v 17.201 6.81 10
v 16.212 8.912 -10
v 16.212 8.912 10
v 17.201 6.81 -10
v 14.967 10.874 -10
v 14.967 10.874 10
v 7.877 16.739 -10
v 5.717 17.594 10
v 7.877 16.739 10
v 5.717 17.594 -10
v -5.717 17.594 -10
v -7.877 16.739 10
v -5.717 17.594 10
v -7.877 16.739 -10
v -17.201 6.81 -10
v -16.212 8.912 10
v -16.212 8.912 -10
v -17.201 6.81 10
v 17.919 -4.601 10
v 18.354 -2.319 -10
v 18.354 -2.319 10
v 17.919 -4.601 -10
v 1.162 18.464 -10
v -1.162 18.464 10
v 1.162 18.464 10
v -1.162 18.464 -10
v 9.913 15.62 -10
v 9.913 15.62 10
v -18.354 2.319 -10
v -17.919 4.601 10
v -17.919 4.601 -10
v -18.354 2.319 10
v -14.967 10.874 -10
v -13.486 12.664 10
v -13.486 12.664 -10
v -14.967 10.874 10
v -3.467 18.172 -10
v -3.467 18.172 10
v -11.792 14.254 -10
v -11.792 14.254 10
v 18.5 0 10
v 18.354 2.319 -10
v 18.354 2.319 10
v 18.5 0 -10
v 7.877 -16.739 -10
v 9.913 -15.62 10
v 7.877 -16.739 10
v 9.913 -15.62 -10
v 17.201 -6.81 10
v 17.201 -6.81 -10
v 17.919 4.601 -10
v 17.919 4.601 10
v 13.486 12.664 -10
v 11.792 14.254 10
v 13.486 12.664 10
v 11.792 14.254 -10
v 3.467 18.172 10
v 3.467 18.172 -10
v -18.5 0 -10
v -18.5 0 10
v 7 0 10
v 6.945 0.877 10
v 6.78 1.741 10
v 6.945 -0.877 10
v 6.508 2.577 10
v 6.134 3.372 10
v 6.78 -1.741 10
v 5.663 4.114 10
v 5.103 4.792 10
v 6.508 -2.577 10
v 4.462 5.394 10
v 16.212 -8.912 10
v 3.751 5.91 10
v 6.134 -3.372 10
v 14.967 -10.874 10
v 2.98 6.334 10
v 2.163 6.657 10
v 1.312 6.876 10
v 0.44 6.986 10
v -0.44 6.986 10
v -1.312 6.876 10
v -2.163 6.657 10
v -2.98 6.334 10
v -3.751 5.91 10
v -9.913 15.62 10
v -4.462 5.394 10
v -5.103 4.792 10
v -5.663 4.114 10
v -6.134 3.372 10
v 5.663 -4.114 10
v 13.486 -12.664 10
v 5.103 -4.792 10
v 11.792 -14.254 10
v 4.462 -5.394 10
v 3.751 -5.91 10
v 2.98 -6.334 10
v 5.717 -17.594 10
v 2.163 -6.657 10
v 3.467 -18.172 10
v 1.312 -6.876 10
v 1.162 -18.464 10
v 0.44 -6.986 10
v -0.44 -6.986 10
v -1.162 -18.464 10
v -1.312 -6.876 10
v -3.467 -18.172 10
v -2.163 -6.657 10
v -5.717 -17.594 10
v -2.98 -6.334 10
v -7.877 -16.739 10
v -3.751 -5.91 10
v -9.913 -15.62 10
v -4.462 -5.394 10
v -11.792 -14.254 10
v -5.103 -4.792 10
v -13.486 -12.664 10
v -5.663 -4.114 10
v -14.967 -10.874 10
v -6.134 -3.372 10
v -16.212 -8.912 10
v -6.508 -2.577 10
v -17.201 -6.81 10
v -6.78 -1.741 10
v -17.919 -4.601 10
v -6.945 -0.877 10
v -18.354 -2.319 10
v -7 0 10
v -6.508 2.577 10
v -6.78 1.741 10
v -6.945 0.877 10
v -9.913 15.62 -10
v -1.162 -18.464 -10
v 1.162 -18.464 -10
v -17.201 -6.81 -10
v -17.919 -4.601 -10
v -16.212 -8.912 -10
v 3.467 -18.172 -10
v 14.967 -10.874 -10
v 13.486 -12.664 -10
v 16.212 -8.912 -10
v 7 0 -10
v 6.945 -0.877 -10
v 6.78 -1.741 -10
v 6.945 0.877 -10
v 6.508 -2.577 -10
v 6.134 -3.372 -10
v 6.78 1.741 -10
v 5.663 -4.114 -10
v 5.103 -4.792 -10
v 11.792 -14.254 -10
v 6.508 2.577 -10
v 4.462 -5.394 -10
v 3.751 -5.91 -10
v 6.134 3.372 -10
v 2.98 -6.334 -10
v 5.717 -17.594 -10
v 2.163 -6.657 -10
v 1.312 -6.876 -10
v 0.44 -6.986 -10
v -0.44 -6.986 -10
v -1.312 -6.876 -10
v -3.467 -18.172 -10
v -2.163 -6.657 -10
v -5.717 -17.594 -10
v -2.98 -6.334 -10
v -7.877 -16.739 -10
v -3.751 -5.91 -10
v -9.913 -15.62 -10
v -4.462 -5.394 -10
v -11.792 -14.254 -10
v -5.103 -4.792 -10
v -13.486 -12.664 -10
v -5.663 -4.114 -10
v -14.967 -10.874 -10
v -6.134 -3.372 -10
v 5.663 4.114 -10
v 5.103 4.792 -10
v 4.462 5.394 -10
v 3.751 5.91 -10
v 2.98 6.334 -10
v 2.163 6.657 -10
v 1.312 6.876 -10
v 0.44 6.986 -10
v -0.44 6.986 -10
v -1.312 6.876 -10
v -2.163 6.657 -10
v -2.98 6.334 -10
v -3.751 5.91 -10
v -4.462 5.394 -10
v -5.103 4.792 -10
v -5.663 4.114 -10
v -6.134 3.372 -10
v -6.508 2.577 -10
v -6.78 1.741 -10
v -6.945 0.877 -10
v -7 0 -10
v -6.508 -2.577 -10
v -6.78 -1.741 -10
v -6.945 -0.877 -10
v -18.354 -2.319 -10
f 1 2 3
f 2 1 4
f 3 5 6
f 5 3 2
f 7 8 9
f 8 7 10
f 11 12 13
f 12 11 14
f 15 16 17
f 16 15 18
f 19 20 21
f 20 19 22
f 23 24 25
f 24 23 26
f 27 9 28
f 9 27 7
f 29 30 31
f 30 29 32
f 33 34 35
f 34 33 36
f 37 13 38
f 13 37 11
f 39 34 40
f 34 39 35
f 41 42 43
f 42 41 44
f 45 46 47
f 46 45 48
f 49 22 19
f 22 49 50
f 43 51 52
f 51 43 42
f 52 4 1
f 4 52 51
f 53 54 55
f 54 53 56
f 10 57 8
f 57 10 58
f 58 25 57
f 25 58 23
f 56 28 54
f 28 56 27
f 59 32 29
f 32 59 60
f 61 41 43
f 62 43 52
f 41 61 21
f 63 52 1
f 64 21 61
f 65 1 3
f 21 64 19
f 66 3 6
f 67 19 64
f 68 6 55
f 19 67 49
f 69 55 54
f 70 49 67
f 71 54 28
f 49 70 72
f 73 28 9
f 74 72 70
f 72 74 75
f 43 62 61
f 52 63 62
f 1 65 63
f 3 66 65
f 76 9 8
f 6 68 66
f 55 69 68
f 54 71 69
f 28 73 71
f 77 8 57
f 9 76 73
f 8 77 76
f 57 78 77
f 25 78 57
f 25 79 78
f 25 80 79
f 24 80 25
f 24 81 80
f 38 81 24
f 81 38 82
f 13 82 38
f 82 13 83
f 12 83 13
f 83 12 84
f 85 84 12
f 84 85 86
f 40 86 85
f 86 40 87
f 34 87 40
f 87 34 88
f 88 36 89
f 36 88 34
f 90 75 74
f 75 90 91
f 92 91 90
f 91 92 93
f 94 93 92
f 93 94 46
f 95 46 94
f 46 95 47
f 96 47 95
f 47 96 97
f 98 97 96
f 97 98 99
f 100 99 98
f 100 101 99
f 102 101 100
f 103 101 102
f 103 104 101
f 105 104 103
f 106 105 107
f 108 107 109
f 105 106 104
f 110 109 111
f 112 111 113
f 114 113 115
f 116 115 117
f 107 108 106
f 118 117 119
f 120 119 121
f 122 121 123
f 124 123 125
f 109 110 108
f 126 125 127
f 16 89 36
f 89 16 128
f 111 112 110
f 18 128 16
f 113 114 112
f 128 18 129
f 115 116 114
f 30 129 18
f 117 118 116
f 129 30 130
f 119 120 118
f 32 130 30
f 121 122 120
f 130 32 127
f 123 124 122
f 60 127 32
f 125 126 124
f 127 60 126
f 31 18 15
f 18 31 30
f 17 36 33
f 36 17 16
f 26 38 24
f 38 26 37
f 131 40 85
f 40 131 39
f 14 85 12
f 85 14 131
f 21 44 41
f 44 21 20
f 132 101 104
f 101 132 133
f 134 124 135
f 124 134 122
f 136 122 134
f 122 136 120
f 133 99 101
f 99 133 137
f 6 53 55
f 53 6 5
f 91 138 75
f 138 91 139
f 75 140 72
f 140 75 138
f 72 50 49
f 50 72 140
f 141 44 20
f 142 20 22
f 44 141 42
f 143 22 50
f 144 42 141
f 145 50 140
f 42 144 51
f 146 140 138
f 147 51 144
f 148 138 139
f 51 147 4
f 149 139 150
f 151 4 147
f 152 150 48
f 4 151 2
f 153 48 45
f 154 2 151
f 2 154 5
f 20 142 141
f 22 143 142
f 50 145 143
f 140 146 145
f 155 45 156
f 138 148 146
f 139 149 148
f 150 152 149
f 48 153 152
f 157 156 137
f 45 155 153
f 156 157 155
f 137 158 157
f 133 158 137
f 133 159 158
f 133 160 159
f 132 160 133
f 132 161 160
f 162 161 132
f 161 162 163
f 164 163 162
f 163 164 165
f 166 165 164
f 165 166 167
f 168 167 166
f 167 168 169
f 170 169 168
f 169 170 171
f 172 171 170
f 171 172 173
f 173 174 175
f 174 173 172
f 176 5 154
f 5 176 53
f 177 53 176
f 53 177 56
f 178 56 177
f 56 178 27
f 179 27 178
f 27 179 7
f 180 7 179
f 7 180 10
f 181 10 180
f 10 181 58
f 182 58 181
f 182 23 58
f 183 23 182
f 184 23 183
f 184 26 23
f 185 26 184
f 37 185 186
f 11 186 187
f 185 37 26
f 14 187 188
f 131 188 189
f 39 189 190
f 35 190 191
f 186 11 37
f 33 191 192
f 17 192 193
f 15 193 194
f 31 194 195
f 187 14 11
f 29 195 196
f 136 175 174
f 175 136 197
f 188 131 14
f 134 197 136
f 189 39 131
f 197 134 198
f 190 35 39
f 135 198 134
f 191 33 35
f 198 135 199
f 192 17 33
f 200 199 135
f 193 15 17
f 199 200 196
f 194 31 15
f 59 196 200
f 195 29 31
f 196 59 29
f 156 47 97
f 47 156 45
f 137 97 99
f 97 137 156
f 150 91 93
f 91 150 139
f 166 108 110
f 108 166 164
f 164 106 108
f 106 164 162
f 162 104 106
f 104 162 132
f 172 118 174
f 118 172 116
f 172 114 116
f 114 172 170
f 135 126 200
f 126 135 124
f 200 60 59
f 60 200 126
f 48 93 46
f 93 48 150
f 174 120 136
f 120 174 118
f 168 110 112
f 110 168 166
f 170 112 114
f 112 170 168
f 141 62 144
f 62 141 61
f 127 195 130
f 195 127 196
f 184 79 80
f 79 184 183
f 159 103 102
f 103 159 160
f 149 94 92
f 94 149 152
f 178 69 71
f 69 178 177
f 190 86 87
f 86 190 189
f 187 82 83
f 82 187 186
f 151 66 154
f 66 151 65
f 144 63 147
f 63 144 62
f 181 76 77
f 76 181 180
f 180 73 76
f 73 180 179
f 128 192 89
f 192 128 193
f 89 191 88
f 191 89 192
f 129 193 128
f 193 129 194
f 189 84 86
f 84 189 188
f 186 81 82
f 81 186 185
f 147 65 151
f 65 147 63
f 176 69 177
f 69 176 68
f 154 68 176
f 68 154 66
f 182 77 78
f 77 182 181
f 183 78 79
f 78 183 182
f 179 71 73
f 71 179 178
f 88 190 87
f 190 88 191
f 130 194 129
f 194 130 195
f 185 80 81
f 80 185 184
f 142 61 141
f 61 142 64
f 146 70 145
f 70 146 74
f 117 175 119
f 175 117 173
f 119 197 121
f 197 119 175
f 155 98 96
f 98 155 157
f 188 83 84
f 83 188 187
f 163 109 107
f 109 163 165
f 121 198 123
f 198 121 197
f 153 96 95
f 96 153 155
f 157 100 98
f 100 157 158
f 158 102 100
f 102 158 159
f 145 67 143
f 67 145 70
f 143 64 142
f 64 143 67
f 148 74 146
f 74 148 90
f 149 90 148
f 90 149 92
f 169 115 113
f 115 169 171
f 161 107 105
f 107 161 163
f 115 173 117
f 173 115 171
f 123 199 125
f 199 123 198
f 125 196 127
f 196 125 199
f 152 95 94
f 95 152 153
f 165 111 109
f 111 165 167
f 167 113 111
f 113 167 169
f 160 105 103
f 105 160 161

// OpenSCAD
$fn = 50;


difference() {
	union() {
		translate(v = [0, 0, -10.0000000000]) {
			cylinder(h = 20, r = 18.5000000000);
		}
	}
	union() {
		translate(v = [0, 0, -100.0000000000]) {
			cylinder(h = 200, r = 7);
		}
	}
}
